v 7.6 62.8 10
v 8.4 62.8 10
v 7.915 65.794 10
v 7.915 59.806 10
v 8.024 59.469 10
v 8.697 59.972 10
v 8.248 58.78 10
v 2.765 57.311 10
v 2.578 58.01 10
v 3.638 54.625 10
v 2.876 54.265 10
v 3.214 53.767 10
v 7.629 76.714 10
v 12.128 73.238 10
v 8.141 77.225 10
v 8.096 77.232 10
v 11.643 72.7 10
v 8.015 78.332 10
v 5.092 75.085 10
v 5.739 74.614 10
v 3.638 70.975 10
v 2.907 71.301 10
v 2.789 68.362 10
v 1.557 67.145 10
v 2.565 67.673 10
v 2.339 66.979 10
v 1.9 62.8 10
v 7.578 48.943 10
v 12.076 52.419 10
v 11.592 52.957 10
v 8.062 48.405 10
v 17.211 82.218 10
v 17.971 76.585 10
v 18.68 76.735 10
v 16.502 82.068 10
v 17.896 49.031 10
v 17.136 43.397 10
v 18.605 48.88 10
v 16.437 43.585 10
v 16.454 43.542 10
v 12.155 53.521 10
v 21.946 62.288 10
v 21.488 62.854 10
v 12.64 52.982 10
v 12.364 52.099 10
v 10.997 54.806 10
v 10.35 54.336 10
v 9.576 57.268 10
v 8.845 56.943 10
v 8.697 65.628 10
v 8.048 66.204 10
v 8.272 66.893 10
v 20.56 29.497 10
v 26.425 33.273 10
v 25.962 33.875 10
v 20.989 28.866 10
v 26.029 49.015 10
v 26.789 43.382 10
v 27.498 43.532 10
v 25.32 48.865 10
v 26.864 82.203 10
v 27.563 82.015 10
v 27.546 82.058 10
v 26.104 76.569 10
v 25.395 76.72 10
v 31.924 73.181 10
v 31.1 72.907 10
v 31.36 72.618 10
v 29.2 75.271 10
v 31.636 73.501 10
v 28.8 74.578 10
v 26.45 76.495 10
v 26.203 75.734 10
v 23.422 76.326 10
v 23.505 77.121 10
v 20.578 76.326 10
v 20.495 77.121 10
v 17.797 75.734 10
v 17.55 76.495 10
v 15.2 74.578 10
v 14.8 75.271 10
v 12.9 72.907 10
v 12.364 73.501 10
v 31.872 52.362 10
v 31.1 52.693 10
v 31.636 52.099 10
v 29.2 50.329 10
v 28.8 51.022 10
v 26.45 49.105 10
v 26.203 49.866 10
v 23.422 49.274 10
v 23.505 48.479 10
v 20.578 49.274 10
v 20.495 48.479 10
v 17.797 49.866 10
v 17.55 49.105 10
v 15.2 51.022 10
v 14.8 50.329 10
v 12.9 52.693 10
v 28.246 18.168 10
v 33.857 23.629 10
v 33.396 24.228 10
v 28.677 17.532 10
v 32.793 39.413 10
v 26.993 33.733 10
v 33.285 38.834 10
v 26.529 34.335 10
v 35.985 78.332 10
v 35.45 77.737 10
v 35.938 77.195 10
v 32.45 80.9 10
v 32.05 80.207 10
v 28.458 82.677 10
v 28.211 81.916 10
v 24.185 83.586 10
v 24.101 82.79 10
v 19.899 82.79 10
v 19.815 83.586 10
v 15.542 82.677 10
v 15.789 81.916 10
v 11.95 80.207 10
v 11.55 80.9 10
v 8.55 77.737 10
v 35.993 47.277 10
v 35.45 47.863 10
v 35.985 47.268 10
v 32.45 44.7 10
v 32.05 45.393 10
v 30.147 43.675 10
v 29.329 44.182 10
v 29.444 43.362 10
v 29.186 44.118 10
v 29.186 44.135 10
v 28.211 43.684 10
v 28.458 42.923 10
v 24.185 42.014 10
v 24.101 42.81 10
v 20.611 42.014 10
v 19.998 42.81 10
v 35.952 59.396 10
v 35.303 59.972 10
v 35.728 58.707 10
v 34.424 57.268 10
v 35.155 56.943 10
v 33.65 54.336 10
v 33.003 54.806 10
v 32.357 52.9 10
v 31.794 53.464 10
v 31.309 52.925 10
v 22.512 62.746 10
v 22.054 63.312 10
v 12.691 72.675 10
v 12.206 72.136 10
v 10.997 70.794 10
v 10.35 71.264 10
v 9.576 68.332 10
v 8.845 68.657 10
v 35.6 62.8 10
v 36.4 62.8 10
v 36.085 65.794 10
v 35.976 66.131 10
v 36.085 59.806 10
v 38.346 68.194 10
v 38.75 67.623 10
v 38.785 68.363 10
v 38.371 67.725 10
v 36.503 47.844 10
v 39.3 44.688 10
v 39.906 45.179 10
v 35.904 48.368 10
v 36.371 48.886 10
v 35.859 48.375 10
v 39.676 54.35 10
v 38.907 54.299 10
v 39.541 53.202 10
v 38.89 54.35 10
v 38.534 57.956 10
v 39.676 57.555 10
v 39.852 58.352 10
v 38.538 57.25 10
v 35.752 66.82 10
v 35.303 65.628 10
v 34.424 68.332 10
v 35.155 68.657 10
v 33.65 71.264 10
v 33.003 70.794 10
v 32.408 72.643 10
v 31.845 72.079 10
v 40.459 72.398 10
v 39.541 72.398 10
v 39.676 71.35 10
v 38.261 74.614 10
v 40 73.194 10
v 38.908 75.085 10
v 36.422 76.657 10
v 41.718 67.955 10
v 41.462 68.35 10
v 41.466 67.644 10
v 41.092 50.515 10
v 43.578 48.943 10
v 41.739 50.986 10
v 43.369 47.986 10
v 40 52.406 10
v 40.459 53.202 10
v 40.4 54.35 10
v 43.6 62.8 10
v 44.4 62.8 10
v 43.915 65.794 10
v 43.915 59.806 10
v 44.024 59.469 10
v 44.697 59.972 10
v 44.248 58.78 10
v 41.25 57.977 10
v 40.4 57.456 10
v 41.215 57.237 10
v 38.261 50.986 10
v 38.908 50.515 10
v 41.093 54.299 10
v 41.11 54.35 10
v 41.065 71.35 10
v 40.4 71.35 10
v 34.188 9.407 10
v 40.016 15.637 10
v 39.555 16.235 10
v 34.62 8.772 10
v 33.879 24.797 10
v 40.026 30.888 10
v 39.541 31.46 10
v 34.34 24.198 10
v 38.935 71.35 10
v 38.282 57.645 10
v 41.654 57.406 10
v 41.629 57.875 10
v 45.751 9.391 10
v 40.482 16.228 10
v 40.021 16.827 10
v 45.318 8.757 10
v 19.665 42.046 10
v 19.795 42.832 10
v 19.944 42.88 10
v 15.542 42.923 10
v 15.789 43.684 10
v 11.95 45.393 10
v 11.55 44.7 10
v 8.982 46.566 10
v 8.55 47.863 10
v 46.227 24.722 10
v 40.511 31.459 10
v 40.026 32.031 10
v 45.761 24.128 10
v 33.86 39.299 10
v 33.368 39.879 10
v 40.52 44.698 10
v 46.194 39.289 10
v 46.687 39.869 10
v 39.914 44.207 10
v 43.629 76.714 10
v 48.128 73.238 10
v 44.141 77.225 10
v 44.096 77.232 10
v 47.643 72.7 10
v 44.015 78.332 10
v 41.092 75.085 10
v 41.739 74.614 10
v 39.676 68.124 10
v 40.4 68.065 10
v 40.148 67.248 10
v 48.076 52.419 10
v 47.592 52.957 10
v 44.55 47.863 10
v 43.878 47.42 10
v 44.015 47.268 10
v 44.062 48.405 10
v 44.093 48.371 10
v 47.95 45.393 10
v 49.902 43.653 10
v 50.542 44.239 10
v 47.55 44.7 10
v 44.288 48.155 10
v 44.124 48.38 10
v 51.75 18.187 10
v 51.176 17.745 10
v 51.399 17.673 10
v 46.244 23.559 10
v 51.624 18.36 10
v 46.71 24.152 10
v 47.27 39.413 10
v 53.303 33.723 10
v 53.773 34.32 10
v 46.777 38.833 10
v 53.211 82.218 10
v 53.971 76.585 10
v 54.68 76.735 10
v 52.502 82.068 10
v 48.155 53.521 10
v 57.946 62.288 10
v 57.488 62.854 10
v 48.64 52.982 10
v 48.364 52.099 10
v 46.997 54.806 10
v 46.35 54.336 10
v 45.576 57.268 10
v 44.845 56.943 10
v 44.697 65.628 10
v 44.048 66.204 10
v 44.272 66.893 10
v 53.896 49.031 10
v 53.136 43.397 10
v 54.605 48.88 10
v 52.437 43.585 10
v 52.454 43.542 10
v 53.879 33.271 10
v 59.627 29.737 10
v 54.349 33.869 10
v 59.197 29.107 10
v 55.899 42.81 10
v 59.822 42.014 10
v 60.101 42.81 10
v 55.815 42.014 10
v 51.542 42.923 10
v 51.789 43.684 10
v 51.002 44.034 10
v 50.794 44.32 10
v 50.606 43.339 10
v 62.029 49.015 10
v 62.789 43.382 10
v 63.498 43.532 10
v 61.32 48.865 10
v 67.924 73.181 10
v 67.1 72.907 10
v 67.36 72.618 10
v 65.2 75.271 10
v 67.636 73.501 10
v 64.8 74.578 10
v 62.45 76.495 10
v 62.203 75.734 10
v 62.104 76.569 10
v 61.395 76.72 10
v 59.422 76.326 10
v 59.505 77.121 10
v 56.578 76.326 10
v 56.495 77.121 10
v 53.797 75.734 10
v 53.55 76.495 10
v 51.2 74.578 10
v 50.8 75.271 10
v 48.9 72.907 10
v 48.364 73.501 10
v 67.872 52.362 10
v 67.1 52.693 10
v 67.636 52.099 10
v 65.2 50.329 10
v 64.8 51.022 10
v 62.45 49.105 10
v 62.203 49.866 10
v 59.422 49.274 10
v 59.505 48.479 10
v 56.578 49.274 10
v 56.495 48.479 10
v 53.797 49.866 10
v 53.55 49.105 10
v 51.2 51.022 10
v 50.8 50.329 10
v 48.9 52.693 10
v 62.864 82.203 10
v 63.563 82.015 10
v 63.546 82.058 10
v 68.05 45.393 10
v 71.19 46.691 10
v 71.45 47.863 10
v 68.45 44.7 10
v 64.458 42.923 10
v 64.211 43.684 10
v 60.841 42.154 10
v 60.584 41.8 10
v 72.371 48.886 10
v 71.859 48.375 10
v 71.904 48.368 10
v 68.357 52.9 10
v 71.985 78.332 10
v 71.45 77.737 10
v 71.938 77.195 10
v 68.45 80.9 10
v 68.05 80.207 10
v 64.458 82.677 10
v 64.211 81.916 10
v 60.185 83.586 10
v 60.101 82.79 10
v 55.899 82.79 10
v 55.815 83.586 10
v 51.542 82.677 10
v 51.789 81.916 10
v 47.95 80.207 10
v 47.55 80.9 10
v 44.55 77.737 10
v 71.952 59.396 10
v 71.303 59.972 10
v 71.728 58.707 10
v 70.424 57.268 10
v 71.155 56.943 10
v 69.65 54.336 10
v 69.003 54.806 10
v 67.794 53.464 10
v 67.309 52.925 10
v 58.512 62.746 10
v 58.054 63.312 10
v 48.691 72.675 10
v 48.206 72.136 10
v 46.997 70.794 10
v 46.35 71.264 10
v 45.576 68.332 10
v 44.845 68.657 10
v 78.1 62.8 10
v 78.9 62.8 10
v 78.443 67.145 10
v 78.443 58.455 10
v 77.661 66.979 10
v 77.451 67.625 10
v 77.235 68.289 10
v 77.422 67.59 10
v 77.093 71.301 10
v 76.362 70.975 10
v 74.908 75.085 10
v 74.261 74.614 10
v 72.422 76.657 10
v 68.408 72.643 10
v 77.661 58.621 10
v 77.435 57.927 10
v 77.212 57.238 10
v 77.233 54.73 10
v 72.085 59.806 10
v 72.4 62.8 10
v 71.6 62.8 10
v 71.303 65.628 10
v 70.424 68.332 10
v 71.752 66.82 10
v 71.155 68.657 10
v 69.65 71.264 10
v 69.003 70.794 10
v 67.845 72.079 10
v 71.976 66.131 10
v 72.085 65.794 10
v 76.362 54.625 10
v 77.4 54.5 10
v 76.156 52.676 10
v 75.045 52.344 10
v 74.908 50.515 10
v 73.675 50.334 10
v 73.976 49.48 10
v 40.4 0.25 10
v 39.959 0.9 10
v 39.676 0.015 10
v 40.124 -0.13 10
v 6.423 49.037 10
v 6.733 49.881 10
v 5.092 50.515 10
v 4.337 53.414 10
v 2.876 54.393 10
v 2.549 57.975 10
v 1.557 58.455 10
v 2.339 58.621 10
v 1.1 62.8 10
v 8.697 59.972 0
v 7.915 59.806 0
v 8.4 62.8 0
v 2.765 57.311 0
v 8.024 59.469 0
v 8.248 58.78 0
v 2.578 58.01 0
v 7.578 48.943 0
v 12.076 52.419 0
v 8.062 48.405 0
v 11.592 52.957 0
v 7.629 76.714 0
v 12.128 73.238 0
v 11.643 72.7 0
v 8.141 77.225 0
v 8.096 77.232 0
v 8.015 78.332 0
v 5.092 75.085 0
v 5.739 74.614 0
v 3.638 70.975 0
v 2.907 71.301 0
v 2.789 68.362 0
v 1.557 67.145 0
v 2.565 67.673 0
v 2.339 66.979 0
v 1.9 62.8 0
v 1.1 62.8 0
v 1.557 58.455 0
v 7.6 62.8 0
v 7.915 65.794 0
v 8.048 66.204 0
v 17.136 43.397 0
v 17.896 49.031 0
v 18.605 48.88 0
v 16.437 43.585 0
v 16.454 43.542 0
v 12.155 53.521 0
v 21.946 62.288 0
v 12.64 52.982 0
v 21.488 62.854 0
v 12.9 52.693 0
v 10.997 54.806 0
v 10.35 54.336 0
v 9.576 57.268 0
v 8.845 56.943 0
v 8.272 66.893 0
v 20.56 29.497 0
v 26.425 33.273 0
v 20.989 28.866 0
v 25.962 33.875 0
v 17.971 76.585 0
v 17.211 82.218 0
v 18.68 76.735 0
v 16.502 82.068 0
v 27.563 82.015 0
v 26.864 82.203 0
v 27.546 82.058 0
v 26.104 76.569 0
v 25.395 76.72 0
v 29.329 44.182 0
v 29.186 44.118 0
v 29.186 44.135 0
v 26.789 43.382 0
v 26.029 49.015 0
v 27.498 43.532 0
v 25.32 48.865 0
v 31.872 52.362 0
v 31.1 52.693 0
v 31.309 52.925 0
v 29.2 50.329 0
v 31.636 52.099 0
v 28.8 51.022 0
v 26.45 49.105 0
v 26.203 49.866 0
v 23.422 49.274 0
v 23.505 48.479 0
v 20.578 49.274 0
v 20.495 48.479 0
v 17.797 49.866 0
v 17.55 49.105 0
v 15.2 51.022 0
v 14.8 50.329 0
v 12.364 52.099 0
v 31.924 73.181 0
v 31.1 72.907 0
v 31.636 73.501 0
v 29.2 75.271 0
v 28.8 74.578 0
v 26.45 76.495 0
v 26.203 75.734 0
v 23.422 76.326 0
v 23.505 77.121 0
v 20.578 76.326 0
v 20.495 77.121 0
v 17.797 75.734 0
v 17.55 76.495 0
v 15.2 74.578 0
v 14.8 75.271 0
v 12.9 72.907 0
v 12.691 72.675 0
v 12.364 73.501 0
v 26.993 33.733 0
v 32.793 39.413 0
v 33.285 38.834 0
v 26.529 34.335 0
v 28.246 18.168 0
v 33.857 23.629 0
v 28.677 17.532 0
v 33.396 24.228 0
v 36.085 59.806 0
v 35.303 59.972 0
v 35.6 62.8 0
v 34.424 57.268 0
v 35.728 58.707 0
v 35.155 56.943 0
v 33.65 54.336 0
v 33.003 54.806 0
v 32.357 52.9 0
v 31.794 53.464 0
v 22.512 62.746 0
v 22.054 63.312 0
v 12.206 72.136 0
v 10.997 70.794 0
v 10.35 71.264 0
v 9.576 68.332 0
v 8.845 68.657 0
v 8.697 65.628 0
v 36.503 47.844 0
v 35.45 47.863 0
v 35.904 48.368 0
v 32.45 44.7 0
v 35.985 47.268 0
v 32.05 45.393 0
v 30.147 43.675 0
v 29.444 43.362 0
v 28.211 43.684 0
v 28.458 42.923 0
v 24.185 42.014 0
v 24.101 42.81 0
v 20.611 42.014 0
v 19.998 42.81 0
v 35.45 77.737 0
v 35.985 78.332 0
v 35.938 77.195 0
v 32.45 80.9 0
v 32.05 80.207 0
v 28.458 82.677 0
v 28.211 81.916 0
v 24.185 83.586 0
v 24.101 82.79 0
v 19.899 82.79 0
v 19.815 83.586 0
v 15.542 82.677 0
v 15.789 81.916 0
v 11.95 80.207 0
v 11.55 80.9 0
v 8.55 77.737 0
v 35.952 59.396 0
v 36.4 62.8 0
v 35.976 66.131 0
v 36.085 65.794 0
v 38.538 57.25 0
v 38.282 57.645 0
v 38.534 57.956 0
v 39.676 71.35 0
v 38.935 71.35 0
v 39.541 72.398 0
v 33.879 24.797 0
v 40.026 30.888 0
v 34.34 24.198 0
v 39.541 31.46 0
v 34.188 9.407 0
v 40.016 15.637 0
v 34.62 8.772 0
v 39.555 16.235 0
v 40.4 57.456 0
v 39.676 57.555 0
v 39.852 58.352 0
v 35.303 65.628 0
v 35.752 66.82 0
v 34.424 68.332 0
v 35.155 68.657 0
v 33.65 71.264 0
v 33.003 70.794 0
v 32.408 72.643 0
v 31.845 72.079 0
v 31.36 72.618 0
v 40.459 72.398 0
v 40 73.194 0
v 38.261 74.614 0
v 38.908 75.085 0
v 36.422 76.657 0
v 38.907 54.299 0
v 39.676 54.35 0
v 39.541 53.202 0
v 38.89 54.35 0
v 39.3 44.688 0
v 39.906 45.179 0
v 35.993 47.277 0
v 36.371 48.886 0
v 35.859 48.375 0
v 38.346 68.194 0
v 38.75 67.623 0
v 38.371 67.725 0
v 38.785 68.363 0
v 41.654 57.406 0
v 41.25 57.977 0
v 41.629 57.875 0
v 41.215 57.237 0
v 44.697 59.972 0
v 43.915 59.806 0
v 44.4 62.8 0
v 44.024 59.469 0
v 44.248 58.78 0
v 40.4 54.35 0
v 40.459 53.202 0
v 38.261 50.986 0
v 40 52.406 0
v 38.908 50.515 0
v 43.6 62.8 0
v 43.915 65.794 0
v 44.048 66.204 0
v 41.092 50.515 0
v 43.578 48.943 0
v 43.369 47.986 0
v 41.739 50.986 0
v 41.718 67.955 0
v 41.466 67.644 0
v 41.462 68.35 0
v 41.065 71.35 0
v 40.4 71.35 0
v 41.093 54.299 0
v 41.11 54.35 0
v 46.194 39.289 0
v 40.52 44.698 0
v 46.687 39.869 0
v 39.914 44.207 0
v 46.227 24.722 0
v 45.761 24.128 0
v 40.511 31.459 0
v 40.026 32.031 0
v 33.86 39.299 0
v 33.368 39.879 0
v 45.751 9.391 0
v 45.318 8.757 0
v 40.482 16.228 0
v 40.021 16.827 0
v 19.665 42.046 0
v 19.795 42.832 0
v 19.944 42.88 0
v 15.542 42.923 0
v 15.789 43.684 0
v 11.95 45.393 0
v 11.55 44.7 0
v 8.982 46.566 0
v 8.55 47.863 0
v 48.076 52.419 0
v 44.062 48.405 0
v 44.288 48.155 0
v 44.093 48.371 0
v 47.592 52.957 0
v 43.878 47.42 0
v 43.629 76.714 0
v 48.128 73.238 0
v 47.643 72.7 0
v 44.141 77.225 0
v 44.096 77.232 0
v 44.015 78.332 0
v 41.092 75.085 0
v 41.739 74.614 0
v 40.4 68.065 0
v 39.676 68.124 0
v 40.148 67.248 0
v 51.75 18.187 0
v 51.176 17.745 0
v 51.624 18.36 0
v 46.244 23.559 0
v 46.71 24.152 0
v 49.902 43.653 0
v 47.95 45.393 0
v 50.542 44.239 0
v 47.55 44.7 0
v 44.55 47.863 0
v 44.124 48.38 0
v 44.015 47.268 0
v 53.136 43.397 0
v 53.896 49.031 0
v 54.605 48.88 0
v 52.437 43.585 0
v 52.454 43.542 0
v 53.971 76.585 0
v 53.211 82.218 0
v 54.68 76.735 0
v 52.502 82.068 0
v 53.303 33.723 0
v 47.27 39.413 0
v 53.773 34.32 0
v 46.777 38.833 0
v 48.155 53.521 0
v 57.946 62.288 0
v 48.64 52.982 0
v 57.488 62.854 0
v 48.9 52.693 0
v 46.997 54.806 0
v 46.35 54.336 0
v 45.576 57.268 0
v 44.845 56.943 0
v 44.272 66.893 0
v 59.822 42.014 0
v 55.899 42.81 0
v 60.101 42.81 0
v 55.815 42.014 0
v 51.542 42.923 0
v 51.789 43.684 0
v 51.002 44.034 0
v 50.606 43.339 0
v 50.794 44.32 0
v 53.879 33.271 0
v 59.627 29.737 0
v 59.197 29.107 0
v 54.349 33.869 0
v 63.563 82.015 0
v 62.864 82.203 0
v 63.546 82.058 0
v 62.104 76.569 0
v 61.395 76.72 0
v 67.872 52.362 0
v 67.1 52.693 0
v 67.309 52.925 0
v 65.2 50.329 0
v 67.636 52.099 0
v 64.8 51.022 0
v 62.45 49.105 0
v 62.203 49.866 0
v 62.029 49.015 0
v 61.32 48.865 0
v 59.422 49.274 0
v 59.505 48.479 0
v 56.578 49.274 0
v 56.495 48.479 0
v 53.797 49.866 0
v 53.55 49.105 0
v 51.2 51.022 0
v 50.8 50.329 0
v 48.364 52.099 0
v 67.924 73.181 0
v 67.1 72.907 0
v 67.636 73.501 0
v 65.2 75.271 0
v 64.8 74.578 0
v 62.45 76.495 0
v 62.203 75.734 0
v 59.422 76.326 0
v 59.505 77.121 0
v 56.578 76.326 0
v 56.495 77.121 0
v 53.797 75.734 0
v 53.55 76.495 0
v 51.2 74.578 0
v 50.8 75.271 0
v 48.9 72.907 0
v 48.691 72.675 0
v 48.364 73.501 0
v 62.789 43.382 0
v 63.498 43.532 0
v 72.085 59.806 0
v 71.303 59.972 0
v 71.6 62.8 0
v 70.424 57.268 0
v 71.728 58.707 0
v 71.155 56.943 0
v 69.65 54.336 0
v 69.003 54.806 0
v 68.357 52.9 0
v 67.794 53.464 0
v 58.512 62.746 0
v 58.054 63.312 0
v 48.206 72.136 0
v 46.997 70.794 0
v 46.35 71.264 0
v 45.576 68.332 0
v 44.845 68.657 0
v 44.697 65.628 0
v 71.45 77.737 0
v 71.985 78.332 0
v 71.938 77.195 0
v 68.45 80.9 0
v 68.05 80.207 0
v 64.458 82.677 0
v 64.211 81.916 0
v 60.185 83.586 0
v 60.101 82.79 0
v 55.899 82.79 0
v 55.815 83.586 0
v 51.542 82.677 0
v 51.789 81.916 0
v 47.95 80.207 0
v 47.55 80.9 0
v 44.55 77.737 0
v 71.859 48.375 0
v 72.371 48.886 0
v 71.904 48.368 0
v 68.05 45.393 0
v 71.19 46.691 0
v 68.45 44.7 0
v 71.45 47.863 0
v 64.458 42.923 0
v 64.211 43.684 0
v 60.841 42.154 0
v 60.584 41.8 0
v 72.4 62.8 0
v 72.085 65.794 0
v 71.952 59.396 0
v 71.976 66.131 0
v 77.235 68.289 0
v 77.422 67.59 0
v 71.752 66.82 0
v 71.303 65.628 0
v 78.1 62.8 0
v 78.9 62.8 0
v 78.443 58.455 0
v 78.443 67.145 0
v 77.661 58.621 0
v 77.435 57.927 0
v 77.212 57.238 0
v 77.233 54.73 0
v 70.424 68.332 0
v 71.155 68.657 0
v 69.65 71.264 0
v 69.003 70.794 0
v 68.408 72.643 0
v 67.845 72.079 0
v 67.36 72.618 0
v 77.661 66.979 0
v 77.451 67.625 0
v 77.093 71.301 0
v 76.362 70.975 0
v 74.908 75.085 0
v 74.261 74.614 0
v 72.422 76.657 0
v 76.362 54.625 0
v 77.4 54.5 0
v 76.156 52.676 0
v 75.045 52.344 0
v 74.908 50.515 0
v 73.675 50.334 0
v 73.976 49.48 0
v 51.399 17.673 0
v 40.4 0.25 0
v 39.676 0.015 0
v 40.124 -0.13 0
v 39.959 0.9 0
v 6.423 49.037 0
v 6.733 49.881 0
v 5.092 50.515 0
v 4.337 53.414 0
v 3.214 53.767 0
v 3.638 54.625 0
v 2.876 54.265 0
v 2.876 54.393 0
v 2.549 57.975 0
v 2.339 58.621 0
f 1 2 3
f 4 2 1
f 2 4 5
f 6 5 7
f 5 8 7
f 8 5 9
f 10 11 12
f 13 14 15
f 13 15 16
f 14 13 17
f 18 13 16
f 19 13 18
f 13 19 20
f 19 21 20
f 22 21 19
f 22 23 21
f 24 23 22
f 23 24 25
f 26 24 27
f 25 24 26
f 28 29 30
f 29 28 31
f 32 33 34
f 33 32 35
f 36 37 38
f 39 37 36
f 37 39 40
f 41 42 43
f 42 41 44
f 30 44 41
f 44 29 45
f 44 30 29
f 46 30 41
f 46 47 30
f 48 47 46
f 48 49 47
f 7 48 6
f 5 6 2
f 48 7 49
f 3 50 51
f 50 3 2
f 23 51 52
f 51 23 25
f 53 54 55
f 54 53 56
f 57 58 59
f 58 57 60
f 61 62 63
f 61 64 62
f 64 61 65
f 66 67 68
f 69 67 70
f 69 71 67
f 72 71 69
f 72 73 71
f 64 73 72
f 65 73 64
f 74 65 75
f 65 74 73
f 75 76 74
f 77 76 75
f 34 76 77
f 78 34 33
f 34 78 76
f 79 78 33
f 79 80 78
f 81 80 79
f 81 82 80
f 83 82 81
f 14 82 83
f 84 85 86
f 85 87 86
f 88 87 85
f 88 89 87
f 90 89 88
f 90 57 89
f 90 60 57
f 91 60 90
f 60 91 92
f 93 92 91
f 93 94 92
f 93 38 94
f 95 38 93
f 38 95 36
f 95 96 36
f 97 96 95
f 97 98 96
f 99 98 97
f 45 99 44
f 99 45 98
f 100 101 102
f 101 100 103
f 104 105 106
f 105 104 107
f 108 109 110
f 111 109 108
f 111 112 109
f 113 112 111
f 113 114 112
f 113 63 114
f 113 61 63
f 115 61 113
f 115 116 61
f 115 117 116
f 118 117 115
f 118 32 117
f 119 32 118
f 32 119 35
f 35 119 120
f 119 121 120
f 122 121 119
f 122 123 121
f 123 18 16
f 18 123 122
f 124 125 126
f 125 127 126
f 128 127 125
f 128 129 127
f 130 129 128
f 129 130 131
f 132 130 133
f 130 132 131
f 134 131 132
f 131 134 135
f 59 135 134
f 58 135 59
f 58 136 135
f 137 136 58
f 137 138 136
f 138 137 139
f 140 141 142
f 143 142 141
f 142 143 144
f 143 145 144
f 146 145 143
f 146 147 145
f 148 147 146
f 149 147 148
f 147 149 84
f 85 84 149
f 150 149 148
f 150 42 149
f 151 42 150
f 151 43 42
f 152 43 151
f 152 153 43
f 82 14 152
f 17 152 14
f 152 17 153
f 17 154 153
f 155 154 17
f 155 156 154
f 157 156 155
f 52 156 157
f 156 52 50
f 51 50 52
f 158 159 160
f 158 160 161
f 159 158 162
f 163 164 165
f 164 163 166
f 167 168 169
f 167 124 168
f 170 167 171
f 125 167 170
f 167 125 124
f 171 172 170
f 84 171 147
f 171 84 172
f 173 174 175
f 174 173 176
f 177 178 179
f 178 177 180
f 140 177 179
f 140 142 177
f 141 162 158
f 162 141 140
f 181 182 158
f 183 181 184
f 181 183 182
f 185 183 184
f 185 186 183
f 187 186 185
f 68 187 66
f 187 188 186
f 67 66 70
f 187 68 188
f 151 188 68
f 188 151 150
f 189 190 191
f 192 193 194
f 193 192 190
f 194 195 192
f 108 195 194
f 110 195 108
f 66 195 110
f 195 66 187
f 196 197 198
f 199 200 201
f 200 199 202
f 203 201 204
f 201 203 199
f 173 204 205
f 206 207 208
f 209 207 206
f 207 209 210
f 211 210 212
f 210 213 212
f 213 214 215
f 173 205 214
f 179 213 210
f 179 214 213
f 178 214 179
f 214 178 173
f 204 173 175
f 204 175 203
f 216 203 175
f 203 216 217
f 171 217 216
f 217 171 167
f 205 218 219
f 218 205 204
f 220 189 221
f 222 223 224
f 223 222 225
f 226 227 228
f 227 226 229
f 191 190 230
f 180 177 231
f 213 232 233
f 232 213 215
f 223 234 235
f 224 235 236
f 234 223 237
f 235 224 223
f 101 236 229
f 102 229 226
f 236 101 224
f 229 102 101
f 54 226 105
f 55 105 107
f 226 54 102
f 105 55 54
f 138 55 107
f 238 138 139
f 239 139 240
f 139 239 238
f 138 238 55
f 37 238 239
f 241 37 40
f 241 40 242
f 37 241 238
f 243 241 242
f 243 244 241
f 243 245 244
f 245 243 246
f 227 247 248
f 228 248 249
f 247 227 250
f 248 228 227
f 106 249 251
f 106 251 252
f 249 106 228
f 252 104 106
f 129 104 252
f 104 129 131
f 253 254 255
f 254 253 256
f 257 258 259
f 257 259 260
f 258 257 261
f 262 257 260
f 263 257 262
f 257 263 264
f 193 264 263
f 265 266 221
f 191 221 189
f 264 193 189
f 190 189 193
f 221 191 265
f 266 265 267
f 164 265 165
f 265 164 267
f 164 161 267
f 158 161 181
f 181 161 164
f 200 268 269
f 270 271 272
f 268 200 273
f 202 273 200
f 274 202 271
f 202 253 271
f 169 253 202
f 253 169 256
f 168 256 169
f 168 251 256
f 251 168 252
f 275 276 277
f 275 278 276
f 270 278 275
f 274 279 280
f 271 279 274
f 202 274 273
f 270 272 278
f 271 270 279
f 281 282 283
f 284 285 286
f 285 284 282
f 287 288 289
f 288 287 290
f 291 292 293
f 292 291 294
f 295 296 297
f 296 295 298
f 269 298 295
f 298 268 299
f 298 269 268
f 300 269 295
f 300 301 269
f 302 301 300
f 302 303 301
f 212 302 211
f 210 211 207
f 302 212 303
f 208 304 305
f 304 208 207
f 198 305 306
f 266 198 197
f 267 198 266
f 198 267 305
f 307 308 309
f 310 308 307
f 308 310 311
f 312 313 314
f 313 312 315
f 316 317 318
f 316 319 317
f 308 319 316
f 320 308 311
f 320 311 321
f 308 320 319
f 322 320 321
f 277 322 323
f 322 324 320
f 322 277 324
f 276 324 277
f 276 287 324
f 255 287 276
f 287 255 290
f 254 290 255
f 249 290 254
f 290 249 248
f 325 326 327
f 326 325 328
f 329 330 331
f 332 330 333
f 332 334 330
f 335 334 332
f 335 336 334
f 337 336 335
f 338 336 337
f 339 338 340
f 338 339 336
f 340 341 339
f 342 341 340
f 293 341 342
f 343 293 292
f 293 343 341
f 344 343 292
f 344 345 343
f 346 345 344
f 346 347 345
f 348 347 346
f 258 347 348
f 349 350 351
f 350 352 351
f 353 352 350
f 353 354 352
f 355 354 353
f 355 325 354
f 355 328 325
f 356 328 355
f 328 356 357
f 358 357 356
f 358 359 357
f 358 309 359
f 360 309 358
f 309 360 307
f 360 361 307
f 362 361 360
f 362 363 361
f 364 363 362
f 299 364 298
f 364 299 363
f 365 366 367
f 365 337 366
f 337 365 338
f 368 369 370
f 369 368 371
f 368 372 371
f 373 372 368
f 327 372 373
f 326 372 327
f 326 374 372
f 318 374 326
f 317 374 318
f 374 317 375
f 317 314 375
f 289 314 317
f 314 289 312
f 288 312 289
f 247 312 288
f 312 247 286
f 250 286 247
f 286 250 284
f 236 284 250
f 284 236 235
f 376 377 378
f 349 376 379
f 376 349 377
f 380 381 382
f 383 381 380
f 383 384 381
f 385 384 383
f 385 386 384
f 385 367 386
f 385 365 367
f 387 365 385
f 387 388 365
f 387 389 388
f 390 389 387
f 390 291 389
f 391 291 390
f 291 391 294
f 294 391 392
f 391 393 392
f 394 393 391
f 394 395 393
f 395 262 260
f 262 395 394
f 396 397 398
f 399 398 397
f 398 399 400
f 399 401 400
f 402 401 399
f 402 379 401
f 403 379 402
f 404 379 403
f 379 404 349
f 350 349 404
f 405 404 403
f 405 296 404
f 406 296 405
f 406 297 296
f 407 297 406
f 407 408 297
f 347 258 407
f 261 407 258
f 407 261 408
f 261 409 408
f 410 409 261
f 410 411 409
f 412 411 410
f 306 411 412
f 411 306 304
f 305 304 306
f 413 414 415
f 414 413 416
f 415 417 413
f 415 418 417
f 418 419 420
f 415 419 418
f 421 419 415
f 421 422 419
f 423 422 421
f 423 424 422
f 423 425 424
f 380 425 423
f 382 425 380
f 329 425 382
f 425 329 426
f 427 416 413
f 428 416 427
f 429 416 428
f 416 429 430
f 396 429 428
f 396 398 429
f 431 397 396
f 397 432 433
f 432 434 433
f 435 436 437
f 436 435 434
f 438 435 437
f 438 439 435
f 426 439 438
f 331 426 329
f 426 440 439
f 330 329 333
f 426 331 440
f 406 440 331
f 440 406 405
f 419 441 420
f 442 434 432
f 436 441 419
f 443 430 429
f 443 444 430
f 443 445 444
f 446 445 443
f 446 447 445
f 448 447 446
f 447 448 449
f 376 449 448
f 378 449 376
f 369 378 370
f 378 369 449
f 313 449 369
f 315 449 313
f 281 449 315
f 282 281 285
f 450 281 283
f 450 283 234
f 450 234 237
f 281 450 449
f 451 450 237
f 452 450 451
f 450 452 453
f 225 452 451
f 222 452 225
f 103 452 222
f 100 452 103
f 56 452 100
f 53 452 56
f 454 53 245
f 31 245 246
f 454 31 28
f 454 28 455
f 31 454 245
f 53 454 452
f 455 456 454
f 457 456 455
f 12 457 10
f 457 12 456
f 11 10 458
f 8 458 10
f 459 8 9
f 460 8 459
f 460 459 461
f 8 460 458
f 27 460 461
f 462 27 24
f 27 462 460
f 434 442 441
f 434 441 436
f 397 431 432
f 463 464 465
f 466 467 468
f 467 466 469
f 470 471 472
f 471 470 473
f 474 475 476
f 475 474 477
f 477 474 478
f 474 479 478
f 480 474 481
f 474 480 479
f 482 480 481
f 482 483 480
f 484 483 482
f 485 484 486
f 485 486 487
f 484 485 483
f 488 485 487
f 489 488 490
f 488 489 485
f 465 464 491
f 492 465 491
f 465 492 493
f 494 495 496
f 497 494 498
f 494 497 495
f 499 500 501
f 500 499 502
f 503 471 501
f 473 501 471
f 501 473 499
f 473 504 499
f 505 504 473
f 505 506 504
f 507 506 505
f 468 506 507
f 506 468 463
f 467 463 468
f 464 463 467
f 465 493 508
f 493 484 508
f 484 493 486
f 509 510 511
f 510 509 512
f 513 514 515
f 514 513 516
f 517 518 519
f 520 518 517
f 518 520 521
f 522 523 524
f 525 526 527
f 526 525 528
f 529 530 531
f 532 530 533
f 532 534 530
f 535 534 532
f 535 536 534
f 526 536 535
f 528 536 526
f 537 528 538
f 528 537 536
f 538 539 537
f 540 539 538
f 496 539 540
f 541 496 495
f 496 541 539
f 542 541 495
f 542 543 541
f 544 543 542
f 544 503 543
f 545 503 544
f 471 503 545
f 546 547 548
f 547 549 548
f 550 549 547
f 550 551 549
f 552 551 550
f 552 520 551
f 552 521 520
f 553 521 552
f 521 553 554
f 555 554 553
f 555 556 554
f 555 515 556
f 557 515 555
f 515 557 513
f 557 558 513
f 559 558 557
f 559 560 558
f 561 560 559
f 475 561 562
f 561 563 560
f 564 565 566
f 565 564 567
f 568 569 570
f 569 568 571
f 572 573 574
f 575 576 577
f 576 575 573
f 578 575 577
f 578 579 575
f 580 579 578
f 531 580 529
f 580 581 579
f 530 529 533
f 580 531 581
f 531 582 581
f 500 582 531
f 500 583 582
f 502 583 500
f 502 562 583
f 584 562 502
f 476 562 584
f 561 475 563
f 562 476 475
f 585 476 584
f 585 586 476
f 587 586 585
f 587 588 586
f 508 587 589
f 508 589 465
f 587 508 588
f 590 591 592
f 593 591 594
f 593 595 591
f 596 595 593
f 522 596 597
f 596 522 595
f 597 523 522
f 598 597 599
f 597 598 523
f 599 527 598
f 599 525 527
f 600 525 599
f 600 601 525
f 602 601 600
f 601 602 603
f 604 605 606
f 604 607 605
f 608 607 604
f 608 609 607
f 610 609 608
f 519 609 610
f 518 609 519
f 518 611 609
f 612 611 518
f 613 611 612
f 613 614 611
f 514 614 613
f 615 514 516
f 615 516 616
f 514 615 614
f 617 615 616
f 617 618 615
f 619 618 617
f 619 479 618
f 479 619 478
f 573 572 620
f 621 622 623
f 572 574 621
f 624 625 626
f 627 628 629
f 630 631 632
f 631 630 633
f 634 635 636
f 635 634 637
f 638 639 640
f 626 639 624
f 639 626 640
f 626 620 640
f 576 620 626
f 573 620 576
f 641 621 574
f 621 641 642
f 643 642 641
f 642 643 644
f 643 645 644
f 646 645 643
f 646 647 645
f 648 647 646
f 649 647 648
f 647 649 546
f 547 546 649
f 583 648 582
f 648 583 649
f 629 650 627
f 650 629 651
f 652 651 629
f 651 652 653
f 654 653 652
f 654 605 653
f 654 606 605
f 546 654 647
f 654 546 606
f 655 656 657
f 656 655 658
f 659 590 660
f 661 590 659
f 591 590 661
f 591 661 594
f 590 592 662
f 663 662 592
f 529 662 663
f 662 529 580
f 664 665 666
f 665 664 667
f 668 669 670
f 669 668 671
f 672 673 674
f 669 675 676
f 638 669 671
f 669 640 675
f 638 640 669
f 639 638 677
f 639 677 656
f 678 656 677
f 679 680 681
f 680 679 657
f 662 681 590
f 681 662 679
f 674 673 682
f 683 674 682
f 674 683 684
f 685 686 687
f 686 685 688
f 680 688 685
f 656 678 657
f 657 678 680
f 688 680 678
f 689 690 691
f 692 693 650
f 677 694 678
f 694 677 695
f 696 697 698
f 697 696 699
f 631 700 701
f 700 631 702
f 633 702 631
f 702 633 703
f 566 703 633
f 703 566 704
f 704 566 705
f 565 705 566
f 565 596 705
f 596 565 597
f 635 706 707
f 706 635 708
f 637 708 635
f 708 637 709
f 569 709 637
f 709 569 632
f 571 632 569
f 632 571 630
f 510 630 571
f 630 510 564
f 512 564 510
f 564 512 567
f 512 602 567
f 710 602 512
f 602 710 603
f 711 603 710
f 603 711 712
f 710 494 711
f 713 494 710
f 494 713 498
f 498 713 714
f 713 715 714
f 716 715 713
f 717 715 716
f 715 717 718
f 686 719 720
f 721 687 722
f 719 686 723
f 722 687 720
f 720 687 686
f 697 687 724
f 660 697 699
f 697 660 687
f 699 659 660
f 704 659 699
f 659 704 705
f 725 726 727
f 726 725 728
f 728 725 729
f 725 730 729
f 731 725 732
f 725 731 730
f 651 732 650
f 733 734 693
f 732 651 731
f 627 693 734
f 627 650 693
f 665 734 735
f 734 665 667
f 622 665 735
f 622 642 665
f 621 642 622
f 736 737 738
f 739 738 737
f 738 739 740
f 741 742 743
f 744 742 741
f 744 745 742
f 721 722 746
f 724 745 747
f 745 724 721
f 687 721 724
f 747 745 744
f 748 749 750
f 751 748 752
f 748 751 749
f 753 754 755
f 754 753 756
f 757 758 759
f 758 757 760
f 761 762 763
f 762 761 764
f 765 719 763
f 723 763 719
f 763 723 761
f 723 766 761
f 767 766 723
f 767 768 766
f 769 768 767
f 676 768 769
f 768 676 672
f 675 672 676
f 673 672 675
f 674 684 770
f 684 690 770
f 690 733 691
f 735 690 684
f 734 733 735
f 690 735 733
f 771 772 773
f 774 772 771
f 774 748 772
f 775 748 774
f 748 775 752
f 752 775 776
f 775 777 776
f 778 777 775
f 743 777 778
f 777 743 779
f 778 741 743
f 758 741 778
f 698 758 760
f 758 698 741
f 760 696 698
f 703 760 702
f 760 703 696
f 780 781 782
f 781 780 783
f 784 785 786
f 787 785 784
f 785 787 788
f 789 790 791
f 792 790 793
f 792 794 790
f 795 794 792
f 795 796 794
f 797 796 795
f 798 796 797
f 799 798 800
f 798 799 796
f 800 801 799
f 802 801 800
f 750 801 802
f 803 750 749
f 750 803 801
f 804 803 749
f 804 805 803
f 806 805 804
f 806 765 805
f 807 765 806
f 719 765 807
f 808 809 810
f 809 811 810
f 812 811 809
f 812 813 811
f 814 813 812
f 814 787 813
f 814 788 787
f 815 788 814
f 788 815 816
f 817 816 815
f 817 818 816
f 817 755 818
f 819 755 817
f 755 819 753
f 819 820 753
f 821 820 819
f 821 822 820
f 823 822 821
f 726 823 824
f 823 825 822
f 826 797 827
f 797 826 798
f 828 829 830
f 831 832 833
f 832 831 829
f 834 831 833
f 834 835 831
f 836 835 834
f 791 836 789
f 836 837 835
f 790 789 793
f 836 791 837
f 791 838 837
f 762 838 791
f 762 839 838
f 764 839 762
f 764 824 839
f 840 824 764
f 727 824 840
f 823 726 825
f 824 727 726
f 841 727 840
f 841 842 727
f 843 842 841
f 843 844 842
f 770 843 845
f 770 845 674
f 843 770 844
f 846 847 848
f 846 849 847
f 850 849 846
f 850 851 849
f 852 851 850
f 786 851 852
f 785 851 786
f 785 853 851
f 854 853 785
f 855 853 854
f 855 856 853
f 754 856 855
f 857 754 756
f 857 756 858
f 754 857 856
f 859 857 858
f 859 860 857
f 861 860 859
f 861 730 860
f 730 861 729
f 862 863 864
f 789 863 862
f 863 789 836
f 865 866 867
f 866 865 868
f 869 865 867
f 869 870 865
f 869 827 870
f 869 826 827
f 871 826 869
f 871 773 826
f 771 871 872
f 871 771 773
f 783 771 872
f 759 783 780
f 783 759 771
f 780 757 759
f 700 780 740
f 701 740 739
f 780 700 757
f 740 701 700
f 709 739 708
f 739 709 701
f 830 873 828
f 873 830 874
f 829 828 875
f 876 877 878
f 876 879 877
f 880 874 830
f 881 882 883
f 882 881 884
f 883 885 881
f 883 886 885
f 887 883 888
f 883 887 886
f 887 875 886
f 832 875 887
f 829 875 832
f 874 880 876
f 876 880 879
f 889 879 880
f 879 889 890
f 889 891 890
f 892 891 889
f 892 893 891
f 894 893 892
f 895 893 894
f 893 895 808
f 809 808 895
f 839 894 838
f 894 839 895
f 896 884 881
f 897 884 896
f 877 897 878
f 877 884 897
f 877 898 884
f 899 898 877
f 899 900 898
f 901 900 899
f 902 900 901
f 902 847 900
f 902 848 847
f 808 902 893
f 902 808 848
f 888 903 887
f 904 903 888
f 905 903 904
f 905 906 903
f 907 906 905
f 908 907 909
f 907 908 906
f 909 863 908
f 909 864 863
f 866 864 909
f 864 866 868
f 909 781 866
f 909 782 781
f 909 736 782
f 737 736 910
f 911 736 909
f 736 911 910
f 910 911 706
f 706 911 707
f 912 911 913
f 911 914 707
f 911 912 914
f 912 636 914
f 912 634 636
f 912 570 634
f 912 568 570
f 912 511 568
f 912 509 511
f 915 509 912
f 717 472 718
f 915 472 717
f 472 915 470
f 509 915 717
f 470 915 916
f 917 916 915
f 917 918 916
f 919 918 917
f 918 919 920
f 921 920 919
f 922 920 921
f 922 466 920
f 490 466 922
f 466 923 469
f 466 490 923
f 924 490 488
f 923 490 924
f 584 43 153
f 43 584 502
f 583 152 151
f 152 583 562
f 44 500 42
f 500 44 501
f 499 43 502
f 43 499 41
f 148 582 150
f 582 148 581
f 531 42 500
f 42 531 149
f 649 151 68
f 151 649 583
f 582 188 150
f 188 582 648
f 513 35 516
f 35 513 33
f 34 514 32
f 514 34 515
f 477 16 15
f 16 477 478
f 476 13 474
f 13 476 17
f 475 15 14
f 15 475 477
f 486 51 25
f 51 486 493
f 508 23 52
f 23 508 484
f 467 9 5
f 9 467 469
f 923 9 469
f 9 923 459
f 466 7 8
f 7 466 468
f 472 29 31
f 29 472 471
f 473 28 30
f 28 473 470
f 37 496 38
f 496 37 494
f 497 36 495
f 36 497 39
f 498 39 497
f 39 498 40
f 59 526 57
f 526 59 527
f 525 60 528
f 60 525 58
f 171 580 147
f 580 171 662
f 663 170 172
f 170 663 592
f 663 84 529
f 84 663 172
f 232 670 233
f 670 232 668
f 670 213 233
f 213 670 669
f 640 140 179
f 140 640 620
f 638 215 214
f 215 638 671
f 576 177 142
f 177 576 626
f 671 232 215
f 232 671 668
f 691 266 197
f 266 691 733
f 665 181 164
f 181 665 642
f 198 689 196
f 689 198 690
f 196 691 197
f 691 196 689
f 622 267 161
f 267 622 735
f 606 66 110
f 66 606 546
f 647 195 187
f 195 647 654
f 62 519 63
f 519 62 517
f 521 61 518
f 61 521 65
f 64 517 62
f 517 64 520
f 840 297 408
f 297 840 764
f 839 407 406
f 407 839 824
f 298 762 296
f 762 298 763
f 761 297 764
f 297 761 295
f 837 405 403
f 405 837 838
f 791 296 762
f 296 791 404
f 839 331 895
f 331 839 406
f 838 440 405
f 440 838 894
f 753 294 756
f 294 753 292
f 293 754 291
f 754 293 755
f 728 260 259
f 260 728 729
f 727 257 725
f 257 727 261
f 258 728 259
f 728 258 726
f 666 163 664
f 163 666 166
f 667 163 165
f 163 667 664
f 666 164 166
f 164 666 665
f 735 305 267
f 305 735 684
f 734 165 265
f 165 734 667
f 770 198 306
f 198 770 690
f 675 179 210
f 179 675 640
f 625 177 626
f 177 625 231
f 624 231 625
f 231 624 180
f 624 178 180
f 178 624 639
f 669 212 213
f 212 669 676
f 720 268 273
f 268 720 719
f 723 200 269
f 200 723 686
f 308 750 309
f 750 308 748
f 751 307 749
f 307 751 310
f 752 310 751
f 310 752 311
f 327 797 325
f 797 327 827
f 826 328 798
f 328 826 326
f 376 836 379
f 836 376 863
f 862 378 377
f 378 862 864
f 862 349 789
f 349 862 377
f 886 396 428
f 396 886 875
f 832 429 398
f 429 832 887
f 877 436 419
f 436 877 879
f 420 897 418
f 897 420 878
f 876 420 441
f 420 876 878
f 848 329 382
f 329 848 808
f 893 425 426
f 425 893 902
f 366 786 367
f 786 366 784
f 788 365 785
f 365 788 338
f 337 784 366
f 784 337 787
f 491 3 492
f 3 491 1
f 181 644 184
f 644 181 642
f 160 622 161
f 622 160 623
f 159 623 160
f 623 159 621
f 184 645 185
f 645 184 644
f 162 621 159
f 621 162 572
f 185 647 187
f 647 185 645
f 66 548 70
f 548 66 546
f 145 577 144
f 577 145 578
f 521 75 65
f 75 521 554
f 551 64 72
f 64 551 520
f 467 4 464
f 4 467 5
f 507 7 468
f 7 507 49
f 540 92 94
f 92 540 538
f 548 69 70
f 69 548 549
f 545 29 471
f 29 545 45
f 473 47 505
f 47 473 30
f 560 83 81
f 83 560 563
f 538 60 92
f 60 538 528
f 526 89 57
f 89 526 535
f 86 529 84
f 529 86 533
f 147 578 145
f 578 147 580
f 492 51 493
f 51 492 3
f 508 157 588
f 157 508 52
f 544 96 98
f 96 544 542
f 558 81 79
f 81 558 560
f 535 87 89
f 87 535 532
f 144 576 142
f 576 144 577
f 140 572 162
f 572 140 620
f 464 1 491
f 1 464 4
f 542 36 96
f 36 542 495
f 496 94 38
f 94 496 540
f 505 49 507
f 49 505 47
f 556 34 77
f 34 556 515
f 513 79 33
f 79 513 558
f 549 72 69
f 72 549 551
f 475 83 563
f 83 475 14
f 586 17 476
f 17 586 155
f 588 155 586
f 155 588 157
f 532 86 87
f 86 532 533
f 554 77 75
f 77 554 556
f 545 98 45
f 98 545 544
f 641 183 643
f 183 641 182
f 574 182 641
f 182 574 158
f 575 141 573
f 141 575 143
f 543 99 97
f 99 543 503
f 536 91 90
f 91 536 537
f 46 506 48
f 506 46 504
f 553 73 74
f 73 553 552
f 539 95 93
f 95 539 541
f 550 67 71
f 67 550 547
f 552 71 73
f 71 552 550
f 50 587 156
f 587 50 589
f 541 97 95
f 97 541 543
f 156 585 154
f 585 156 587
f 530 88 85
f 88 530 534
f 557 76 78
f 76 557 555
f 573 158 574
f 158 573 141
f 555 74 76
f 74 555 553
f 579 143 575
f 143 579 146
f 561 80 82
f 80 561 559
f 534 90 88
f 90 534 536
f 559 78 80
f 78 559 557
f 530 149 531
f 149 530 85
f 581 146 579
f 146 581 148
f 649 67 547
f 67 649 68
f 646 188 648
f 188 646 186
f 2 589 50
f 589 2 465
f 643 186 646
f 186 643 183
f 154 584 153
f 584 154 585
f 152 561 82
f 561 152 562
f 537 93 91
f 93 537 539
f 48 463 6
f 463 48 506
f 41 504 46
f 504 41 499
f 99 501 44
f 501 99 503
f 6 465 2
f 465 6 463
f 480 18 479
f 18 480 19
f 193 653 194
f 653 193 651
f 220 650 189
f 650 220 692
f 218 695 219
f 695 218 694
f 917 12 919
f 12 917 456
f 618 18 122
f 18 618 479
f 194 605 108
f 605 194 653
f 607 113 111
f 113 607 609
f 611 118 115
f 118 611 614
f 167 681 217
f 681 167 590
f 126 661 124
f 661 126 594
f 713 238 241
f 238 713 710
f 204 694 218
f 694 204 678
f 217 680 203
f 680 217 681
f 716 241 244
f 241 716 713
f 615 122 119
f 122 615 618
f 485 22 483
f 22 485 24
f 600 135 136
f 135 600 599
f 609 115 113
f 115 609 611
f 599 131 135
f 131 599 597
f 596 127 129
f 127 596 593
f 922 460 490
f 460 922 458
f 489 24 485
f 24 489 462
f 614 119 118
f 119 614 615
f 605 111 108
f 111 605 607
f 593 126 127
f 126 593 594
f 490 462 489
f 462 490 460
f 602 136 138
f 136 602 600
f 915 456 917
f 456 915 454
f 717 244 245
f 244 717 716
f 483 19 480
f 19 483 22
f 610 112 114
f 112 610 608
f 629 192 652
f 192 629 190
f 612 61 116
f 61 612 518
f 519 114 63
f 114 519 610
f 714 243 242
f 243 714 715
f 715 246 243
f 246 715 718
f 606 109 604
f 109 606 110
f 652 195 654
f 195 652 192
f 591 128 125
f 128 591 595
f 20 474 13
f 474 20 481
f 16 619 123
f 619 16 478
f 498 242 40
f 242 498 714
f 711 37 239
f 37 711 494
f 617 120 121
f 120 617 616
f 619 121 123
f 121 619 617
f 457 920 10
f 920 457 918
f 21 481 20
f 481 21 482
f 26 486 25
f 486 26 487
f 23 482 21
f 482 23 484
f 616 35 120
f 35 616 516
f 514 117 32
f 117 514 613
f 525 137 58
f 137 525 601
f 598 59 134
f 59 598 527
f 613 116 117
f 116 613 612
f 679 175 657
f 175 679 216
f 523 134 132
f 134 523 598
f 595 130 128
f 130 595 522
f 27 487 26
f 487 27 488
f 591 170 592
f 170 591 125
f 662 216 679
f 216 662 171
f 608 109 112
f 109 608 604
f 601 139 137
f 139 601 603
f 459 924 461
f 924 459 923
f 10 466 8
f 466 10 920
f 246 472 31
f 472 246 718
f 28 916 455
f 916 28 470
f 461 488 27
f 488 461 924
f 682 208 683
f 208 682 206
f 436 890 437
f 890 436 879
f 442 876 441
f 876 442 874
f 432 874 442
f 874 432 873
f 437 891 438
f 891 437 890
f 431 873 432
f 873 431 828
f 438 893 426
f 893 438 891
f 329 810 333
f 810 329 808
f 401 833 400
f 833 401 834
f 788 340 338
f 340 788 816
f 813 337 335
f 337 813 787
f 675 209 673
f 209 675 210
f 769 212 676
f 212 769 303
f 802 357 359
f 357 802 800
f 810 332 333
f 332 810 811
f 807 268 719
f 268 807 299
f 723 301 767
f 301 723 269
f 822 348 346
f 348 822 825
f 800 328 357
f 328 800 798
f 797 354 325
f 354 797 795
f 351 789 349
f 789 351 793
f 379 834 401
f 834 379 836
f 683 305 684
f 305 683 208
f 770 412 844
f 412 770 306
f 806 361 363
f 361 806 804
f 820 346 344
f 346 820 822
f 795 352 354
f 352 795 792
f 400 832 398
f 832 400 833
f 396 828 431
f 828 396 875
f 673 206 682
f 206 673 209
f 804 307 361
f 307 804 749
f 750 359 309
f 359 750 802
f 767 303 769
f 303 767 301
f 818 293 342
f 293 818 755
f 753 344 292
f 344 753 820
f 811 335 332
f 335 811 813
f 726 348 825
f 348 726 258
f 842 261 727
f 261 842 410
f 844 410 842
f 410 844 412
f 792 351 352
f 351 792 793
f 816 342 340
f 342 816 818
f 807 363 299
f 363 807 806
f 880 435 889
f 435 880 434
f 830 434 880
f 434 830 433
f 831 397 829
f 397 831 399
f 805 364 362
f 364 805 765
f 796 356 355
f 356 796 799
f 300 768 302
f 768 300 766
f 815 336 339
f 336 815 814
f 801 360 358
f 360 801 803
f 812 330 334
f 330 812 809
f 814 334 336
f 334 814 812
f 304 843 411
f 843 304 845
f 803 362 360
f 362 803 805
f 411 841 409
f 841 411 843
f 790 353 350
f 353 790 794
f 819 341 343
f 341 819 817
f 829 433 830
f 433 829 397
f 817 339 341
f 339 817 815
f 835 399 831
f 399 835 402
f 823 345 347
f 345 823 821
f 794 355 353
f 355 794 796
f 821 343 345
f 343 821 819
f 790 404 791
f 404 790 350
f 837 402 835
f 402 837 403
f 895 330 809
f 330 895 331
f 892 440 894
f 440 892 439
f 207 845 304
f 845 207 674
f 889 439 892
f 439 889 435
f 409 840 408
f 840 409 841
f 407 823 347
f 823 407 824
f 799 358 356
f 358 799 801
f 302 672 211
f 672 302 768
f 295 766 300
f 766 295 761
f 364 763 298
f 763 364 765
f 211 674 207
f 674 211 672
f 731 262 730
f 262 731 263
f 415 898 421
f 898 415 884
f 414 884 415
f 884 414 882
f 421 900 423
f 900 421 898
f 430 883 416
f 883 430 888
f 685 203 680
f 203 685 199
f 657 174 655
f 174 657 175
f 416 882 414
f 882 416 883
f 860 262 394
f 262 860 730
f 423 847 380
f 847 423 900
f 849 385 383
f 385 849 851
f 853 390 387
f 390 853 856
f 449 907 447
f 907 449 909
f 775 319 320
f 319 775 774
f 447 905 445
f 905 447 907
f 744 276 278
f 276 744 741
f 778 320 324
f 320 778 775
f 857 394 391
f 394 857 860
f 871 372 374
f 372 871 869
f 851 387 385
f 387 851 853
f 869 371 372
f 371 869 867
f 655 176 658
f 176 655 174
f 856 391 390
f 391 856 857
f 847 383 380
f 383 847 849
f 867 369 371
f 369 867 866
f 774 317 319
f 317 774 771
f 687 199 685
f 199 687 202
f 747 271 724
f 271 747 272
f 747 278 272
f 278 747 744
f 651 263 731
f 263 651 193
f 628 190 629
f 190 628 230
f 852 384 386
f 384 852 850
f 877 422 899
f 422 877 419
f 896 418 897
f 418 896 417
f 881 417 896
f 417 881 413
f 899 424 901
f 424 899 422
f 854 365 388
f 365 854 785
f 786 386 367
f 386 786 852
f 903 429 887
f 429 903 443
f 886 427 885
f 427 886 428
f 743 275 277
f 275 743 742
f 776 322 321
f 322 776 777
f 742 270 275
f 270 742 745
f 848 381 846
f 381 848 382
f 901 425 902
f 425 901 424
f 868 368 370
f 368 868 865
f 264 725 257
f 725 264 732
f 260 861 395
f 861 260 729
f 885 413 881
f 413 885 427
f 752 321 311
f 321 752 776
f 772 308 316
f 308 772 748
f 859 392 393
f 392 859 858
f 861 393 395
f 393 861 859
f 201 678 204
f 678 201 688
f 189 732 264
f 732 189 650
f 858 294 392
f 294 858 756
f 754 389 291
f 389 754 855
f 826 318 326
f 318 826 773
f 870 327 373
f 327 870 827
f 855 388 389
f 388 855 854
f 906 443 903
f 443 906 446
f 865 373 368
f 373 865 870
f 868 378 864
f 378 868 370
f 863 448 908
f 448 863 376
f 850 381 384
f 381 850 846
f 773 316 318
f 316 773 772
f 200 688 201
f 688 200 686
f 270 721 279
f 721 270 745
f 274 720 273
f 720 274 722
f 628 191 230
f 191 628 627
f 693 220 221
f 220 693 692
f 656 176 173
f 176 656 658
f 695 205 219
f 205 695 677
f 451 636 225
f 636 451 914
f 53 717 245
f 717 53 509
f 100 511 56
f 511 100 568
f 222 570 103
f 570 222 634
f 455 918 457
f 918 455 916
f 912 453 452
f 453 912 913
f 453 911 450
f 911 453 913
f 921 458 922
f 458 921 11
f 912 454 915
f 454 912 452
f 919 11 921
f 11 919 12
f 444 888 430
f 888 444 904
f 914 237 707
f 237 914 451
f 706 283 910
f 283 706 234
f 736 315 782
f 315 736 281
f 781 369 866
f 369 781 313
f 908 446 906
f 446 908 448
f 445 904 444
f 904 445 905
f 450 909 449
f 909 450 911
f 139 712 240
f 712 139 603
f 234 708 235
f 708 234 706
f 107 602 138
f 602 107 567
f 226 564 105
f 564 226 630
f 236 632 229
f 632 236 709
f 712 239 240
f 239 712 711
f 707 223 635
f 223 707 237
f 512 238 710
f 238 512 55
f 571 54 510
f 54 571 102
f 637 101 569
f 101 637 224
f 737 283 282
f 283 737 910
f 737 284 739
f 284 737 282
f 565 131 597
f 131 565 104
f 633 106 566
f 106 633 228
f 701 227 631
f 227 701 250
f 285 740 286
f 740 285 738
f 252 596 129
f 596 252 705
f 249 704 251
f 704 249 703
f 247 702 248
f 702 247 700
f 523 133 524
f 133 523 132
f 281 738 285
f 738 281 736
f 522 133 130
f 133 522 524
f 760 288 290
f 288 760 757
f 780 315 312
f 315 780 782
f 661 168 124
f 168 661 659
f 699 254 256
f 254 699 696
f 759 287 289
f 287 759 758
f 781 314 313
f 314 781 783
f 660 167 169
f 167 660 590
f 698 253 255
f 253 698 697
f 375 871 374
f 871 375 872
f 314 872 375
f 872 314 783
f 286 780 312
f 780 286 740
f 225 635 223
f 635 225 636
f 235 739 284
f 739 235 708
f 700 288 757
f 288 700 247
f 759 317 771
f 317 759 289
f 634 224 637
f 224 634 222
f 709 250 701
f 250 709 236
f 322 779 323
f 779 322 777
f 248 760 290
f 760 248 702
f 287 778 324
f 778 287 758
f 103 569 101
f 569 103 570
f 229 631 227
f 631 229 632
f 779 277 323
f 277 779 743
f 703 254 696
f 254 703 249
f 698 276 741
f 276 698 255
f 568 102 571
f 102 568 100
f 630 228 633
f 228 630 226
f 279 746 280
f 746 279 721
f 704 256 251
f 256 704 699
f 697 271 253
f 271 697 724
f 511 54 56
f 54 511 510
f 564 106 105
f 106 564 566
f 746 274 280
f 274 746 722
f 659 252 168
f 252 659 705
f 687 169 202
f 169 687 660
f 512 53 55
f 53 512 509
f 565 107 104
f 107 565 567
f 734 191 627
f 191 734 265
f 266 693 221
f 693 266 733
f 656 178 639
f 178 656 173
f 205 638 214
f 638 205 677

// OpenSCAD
skinBreak = .02;

gDepth = 10;

dsg = .4;

lInnerR = 14;
lOuterR = 20.5;
lCircleX = 22;
lCircleY = 62.8;
rInnerR = 14;
rOuterR = 20.5;
rCircleX = 58;
rCircleY = 62.8;

module line(x1, y1, x2, y2, d=gDepth, th=dsg) {
    linear_extrude(height=d) {
        // left
        hull() {
          translate([x1, y1]) circle(th);
          translate([x2, y2]) circle(th);
        }
    }
}

module ring(rad, wid=dsg) {
    difference() {
        cylinder(r=rad+wid, h=gDepth);
        translate([0, 0, -skinBreak/2])
            cylinder(r=rad-wid, h=gDepth+skinBreak);
    }
}

gapCubeW = 7.0;
gapCubeH = 17;
gapCubeD = gDepth;
gapCubeX = -gapCubeW/2;
gapCubeY = -9.4;
gapCubeZ = 0;

module ringCenter(offsetX, offsetY) {    
    translate([offsetX + gapCubeX, offsetY + gapCubeY, gapCubeZ-skinBreak/2])
        cube([gapCubeW, gapCubeH, gapCubeD+skinBreak]);
}

module ringDividers(r1, r2) {
    for (a = [15:30:345])
#        rotate([0, 0, a])
            line(0, r1, 0, r2-.5);
}

module centerCross(rad, wid=dsg) {
    for (a = [45,135,225,315])
        rotate([0, 0, a])
            line(0, 0, 0, rad);
}

dx = .5;

lineArray = [
    [ -dx+3.7, 54.5, 40, 0.25 ],
    [ 40, 0.25, dx+76.5, 54.5 ],
    [ -dx+20.32, 42.5, 45.72, 8.89 ],
    [ 29.51, 43.9, 51.5, 17.98 ],
    [ 59.69, 29.21, 36., 47.76 ],
    [ -dx+60.96, 42.18, 34.29, 8.89 ],
    [ dx+27.94, 17.78, 50.67, 43.94 ],
    [ dx+20.32, 29.21, 44., 48. ],
    [ 40, 71.5, 40, 68 ],
    [ 40, 54, 40, 58 ]
];

module hartLinez(d=gDepth) {
    for (a = lineArray) {
        line(a[0], a[1], a[2], a[3], d);
    }
}


module framePos1() {
    // rings
    translate([lCircleX, lCircleY, 0]) {
        ring(lInnerR);
        ring(lOuterR);
    }
    translate([rCircleX, rCircleY, 0]) {
        ring(rInnerR);
        ring(rOuterR);
    }
}

module frameNeg1() {
    heartCenterX = 40;
    heartCenterY = 63.75;
    ringCenter(heartCenterX, heartCenterY);
}

module framePos2() {
    // subdividers
    translate([lCircleX, lCircleY, 0]) {
        centerCross(lInnerR);
        ringDividers(lInnerR, lOuterR);
    }
    
    translate([rCircleX, rCircleY, 0]) {
        centerCross(rInnerR);
        ringDividers(rInnerR, rOuterR);
    }
    hartLinez();
}


difference() {
    framePos1();
    frameNeg1();
}
framePos2();
